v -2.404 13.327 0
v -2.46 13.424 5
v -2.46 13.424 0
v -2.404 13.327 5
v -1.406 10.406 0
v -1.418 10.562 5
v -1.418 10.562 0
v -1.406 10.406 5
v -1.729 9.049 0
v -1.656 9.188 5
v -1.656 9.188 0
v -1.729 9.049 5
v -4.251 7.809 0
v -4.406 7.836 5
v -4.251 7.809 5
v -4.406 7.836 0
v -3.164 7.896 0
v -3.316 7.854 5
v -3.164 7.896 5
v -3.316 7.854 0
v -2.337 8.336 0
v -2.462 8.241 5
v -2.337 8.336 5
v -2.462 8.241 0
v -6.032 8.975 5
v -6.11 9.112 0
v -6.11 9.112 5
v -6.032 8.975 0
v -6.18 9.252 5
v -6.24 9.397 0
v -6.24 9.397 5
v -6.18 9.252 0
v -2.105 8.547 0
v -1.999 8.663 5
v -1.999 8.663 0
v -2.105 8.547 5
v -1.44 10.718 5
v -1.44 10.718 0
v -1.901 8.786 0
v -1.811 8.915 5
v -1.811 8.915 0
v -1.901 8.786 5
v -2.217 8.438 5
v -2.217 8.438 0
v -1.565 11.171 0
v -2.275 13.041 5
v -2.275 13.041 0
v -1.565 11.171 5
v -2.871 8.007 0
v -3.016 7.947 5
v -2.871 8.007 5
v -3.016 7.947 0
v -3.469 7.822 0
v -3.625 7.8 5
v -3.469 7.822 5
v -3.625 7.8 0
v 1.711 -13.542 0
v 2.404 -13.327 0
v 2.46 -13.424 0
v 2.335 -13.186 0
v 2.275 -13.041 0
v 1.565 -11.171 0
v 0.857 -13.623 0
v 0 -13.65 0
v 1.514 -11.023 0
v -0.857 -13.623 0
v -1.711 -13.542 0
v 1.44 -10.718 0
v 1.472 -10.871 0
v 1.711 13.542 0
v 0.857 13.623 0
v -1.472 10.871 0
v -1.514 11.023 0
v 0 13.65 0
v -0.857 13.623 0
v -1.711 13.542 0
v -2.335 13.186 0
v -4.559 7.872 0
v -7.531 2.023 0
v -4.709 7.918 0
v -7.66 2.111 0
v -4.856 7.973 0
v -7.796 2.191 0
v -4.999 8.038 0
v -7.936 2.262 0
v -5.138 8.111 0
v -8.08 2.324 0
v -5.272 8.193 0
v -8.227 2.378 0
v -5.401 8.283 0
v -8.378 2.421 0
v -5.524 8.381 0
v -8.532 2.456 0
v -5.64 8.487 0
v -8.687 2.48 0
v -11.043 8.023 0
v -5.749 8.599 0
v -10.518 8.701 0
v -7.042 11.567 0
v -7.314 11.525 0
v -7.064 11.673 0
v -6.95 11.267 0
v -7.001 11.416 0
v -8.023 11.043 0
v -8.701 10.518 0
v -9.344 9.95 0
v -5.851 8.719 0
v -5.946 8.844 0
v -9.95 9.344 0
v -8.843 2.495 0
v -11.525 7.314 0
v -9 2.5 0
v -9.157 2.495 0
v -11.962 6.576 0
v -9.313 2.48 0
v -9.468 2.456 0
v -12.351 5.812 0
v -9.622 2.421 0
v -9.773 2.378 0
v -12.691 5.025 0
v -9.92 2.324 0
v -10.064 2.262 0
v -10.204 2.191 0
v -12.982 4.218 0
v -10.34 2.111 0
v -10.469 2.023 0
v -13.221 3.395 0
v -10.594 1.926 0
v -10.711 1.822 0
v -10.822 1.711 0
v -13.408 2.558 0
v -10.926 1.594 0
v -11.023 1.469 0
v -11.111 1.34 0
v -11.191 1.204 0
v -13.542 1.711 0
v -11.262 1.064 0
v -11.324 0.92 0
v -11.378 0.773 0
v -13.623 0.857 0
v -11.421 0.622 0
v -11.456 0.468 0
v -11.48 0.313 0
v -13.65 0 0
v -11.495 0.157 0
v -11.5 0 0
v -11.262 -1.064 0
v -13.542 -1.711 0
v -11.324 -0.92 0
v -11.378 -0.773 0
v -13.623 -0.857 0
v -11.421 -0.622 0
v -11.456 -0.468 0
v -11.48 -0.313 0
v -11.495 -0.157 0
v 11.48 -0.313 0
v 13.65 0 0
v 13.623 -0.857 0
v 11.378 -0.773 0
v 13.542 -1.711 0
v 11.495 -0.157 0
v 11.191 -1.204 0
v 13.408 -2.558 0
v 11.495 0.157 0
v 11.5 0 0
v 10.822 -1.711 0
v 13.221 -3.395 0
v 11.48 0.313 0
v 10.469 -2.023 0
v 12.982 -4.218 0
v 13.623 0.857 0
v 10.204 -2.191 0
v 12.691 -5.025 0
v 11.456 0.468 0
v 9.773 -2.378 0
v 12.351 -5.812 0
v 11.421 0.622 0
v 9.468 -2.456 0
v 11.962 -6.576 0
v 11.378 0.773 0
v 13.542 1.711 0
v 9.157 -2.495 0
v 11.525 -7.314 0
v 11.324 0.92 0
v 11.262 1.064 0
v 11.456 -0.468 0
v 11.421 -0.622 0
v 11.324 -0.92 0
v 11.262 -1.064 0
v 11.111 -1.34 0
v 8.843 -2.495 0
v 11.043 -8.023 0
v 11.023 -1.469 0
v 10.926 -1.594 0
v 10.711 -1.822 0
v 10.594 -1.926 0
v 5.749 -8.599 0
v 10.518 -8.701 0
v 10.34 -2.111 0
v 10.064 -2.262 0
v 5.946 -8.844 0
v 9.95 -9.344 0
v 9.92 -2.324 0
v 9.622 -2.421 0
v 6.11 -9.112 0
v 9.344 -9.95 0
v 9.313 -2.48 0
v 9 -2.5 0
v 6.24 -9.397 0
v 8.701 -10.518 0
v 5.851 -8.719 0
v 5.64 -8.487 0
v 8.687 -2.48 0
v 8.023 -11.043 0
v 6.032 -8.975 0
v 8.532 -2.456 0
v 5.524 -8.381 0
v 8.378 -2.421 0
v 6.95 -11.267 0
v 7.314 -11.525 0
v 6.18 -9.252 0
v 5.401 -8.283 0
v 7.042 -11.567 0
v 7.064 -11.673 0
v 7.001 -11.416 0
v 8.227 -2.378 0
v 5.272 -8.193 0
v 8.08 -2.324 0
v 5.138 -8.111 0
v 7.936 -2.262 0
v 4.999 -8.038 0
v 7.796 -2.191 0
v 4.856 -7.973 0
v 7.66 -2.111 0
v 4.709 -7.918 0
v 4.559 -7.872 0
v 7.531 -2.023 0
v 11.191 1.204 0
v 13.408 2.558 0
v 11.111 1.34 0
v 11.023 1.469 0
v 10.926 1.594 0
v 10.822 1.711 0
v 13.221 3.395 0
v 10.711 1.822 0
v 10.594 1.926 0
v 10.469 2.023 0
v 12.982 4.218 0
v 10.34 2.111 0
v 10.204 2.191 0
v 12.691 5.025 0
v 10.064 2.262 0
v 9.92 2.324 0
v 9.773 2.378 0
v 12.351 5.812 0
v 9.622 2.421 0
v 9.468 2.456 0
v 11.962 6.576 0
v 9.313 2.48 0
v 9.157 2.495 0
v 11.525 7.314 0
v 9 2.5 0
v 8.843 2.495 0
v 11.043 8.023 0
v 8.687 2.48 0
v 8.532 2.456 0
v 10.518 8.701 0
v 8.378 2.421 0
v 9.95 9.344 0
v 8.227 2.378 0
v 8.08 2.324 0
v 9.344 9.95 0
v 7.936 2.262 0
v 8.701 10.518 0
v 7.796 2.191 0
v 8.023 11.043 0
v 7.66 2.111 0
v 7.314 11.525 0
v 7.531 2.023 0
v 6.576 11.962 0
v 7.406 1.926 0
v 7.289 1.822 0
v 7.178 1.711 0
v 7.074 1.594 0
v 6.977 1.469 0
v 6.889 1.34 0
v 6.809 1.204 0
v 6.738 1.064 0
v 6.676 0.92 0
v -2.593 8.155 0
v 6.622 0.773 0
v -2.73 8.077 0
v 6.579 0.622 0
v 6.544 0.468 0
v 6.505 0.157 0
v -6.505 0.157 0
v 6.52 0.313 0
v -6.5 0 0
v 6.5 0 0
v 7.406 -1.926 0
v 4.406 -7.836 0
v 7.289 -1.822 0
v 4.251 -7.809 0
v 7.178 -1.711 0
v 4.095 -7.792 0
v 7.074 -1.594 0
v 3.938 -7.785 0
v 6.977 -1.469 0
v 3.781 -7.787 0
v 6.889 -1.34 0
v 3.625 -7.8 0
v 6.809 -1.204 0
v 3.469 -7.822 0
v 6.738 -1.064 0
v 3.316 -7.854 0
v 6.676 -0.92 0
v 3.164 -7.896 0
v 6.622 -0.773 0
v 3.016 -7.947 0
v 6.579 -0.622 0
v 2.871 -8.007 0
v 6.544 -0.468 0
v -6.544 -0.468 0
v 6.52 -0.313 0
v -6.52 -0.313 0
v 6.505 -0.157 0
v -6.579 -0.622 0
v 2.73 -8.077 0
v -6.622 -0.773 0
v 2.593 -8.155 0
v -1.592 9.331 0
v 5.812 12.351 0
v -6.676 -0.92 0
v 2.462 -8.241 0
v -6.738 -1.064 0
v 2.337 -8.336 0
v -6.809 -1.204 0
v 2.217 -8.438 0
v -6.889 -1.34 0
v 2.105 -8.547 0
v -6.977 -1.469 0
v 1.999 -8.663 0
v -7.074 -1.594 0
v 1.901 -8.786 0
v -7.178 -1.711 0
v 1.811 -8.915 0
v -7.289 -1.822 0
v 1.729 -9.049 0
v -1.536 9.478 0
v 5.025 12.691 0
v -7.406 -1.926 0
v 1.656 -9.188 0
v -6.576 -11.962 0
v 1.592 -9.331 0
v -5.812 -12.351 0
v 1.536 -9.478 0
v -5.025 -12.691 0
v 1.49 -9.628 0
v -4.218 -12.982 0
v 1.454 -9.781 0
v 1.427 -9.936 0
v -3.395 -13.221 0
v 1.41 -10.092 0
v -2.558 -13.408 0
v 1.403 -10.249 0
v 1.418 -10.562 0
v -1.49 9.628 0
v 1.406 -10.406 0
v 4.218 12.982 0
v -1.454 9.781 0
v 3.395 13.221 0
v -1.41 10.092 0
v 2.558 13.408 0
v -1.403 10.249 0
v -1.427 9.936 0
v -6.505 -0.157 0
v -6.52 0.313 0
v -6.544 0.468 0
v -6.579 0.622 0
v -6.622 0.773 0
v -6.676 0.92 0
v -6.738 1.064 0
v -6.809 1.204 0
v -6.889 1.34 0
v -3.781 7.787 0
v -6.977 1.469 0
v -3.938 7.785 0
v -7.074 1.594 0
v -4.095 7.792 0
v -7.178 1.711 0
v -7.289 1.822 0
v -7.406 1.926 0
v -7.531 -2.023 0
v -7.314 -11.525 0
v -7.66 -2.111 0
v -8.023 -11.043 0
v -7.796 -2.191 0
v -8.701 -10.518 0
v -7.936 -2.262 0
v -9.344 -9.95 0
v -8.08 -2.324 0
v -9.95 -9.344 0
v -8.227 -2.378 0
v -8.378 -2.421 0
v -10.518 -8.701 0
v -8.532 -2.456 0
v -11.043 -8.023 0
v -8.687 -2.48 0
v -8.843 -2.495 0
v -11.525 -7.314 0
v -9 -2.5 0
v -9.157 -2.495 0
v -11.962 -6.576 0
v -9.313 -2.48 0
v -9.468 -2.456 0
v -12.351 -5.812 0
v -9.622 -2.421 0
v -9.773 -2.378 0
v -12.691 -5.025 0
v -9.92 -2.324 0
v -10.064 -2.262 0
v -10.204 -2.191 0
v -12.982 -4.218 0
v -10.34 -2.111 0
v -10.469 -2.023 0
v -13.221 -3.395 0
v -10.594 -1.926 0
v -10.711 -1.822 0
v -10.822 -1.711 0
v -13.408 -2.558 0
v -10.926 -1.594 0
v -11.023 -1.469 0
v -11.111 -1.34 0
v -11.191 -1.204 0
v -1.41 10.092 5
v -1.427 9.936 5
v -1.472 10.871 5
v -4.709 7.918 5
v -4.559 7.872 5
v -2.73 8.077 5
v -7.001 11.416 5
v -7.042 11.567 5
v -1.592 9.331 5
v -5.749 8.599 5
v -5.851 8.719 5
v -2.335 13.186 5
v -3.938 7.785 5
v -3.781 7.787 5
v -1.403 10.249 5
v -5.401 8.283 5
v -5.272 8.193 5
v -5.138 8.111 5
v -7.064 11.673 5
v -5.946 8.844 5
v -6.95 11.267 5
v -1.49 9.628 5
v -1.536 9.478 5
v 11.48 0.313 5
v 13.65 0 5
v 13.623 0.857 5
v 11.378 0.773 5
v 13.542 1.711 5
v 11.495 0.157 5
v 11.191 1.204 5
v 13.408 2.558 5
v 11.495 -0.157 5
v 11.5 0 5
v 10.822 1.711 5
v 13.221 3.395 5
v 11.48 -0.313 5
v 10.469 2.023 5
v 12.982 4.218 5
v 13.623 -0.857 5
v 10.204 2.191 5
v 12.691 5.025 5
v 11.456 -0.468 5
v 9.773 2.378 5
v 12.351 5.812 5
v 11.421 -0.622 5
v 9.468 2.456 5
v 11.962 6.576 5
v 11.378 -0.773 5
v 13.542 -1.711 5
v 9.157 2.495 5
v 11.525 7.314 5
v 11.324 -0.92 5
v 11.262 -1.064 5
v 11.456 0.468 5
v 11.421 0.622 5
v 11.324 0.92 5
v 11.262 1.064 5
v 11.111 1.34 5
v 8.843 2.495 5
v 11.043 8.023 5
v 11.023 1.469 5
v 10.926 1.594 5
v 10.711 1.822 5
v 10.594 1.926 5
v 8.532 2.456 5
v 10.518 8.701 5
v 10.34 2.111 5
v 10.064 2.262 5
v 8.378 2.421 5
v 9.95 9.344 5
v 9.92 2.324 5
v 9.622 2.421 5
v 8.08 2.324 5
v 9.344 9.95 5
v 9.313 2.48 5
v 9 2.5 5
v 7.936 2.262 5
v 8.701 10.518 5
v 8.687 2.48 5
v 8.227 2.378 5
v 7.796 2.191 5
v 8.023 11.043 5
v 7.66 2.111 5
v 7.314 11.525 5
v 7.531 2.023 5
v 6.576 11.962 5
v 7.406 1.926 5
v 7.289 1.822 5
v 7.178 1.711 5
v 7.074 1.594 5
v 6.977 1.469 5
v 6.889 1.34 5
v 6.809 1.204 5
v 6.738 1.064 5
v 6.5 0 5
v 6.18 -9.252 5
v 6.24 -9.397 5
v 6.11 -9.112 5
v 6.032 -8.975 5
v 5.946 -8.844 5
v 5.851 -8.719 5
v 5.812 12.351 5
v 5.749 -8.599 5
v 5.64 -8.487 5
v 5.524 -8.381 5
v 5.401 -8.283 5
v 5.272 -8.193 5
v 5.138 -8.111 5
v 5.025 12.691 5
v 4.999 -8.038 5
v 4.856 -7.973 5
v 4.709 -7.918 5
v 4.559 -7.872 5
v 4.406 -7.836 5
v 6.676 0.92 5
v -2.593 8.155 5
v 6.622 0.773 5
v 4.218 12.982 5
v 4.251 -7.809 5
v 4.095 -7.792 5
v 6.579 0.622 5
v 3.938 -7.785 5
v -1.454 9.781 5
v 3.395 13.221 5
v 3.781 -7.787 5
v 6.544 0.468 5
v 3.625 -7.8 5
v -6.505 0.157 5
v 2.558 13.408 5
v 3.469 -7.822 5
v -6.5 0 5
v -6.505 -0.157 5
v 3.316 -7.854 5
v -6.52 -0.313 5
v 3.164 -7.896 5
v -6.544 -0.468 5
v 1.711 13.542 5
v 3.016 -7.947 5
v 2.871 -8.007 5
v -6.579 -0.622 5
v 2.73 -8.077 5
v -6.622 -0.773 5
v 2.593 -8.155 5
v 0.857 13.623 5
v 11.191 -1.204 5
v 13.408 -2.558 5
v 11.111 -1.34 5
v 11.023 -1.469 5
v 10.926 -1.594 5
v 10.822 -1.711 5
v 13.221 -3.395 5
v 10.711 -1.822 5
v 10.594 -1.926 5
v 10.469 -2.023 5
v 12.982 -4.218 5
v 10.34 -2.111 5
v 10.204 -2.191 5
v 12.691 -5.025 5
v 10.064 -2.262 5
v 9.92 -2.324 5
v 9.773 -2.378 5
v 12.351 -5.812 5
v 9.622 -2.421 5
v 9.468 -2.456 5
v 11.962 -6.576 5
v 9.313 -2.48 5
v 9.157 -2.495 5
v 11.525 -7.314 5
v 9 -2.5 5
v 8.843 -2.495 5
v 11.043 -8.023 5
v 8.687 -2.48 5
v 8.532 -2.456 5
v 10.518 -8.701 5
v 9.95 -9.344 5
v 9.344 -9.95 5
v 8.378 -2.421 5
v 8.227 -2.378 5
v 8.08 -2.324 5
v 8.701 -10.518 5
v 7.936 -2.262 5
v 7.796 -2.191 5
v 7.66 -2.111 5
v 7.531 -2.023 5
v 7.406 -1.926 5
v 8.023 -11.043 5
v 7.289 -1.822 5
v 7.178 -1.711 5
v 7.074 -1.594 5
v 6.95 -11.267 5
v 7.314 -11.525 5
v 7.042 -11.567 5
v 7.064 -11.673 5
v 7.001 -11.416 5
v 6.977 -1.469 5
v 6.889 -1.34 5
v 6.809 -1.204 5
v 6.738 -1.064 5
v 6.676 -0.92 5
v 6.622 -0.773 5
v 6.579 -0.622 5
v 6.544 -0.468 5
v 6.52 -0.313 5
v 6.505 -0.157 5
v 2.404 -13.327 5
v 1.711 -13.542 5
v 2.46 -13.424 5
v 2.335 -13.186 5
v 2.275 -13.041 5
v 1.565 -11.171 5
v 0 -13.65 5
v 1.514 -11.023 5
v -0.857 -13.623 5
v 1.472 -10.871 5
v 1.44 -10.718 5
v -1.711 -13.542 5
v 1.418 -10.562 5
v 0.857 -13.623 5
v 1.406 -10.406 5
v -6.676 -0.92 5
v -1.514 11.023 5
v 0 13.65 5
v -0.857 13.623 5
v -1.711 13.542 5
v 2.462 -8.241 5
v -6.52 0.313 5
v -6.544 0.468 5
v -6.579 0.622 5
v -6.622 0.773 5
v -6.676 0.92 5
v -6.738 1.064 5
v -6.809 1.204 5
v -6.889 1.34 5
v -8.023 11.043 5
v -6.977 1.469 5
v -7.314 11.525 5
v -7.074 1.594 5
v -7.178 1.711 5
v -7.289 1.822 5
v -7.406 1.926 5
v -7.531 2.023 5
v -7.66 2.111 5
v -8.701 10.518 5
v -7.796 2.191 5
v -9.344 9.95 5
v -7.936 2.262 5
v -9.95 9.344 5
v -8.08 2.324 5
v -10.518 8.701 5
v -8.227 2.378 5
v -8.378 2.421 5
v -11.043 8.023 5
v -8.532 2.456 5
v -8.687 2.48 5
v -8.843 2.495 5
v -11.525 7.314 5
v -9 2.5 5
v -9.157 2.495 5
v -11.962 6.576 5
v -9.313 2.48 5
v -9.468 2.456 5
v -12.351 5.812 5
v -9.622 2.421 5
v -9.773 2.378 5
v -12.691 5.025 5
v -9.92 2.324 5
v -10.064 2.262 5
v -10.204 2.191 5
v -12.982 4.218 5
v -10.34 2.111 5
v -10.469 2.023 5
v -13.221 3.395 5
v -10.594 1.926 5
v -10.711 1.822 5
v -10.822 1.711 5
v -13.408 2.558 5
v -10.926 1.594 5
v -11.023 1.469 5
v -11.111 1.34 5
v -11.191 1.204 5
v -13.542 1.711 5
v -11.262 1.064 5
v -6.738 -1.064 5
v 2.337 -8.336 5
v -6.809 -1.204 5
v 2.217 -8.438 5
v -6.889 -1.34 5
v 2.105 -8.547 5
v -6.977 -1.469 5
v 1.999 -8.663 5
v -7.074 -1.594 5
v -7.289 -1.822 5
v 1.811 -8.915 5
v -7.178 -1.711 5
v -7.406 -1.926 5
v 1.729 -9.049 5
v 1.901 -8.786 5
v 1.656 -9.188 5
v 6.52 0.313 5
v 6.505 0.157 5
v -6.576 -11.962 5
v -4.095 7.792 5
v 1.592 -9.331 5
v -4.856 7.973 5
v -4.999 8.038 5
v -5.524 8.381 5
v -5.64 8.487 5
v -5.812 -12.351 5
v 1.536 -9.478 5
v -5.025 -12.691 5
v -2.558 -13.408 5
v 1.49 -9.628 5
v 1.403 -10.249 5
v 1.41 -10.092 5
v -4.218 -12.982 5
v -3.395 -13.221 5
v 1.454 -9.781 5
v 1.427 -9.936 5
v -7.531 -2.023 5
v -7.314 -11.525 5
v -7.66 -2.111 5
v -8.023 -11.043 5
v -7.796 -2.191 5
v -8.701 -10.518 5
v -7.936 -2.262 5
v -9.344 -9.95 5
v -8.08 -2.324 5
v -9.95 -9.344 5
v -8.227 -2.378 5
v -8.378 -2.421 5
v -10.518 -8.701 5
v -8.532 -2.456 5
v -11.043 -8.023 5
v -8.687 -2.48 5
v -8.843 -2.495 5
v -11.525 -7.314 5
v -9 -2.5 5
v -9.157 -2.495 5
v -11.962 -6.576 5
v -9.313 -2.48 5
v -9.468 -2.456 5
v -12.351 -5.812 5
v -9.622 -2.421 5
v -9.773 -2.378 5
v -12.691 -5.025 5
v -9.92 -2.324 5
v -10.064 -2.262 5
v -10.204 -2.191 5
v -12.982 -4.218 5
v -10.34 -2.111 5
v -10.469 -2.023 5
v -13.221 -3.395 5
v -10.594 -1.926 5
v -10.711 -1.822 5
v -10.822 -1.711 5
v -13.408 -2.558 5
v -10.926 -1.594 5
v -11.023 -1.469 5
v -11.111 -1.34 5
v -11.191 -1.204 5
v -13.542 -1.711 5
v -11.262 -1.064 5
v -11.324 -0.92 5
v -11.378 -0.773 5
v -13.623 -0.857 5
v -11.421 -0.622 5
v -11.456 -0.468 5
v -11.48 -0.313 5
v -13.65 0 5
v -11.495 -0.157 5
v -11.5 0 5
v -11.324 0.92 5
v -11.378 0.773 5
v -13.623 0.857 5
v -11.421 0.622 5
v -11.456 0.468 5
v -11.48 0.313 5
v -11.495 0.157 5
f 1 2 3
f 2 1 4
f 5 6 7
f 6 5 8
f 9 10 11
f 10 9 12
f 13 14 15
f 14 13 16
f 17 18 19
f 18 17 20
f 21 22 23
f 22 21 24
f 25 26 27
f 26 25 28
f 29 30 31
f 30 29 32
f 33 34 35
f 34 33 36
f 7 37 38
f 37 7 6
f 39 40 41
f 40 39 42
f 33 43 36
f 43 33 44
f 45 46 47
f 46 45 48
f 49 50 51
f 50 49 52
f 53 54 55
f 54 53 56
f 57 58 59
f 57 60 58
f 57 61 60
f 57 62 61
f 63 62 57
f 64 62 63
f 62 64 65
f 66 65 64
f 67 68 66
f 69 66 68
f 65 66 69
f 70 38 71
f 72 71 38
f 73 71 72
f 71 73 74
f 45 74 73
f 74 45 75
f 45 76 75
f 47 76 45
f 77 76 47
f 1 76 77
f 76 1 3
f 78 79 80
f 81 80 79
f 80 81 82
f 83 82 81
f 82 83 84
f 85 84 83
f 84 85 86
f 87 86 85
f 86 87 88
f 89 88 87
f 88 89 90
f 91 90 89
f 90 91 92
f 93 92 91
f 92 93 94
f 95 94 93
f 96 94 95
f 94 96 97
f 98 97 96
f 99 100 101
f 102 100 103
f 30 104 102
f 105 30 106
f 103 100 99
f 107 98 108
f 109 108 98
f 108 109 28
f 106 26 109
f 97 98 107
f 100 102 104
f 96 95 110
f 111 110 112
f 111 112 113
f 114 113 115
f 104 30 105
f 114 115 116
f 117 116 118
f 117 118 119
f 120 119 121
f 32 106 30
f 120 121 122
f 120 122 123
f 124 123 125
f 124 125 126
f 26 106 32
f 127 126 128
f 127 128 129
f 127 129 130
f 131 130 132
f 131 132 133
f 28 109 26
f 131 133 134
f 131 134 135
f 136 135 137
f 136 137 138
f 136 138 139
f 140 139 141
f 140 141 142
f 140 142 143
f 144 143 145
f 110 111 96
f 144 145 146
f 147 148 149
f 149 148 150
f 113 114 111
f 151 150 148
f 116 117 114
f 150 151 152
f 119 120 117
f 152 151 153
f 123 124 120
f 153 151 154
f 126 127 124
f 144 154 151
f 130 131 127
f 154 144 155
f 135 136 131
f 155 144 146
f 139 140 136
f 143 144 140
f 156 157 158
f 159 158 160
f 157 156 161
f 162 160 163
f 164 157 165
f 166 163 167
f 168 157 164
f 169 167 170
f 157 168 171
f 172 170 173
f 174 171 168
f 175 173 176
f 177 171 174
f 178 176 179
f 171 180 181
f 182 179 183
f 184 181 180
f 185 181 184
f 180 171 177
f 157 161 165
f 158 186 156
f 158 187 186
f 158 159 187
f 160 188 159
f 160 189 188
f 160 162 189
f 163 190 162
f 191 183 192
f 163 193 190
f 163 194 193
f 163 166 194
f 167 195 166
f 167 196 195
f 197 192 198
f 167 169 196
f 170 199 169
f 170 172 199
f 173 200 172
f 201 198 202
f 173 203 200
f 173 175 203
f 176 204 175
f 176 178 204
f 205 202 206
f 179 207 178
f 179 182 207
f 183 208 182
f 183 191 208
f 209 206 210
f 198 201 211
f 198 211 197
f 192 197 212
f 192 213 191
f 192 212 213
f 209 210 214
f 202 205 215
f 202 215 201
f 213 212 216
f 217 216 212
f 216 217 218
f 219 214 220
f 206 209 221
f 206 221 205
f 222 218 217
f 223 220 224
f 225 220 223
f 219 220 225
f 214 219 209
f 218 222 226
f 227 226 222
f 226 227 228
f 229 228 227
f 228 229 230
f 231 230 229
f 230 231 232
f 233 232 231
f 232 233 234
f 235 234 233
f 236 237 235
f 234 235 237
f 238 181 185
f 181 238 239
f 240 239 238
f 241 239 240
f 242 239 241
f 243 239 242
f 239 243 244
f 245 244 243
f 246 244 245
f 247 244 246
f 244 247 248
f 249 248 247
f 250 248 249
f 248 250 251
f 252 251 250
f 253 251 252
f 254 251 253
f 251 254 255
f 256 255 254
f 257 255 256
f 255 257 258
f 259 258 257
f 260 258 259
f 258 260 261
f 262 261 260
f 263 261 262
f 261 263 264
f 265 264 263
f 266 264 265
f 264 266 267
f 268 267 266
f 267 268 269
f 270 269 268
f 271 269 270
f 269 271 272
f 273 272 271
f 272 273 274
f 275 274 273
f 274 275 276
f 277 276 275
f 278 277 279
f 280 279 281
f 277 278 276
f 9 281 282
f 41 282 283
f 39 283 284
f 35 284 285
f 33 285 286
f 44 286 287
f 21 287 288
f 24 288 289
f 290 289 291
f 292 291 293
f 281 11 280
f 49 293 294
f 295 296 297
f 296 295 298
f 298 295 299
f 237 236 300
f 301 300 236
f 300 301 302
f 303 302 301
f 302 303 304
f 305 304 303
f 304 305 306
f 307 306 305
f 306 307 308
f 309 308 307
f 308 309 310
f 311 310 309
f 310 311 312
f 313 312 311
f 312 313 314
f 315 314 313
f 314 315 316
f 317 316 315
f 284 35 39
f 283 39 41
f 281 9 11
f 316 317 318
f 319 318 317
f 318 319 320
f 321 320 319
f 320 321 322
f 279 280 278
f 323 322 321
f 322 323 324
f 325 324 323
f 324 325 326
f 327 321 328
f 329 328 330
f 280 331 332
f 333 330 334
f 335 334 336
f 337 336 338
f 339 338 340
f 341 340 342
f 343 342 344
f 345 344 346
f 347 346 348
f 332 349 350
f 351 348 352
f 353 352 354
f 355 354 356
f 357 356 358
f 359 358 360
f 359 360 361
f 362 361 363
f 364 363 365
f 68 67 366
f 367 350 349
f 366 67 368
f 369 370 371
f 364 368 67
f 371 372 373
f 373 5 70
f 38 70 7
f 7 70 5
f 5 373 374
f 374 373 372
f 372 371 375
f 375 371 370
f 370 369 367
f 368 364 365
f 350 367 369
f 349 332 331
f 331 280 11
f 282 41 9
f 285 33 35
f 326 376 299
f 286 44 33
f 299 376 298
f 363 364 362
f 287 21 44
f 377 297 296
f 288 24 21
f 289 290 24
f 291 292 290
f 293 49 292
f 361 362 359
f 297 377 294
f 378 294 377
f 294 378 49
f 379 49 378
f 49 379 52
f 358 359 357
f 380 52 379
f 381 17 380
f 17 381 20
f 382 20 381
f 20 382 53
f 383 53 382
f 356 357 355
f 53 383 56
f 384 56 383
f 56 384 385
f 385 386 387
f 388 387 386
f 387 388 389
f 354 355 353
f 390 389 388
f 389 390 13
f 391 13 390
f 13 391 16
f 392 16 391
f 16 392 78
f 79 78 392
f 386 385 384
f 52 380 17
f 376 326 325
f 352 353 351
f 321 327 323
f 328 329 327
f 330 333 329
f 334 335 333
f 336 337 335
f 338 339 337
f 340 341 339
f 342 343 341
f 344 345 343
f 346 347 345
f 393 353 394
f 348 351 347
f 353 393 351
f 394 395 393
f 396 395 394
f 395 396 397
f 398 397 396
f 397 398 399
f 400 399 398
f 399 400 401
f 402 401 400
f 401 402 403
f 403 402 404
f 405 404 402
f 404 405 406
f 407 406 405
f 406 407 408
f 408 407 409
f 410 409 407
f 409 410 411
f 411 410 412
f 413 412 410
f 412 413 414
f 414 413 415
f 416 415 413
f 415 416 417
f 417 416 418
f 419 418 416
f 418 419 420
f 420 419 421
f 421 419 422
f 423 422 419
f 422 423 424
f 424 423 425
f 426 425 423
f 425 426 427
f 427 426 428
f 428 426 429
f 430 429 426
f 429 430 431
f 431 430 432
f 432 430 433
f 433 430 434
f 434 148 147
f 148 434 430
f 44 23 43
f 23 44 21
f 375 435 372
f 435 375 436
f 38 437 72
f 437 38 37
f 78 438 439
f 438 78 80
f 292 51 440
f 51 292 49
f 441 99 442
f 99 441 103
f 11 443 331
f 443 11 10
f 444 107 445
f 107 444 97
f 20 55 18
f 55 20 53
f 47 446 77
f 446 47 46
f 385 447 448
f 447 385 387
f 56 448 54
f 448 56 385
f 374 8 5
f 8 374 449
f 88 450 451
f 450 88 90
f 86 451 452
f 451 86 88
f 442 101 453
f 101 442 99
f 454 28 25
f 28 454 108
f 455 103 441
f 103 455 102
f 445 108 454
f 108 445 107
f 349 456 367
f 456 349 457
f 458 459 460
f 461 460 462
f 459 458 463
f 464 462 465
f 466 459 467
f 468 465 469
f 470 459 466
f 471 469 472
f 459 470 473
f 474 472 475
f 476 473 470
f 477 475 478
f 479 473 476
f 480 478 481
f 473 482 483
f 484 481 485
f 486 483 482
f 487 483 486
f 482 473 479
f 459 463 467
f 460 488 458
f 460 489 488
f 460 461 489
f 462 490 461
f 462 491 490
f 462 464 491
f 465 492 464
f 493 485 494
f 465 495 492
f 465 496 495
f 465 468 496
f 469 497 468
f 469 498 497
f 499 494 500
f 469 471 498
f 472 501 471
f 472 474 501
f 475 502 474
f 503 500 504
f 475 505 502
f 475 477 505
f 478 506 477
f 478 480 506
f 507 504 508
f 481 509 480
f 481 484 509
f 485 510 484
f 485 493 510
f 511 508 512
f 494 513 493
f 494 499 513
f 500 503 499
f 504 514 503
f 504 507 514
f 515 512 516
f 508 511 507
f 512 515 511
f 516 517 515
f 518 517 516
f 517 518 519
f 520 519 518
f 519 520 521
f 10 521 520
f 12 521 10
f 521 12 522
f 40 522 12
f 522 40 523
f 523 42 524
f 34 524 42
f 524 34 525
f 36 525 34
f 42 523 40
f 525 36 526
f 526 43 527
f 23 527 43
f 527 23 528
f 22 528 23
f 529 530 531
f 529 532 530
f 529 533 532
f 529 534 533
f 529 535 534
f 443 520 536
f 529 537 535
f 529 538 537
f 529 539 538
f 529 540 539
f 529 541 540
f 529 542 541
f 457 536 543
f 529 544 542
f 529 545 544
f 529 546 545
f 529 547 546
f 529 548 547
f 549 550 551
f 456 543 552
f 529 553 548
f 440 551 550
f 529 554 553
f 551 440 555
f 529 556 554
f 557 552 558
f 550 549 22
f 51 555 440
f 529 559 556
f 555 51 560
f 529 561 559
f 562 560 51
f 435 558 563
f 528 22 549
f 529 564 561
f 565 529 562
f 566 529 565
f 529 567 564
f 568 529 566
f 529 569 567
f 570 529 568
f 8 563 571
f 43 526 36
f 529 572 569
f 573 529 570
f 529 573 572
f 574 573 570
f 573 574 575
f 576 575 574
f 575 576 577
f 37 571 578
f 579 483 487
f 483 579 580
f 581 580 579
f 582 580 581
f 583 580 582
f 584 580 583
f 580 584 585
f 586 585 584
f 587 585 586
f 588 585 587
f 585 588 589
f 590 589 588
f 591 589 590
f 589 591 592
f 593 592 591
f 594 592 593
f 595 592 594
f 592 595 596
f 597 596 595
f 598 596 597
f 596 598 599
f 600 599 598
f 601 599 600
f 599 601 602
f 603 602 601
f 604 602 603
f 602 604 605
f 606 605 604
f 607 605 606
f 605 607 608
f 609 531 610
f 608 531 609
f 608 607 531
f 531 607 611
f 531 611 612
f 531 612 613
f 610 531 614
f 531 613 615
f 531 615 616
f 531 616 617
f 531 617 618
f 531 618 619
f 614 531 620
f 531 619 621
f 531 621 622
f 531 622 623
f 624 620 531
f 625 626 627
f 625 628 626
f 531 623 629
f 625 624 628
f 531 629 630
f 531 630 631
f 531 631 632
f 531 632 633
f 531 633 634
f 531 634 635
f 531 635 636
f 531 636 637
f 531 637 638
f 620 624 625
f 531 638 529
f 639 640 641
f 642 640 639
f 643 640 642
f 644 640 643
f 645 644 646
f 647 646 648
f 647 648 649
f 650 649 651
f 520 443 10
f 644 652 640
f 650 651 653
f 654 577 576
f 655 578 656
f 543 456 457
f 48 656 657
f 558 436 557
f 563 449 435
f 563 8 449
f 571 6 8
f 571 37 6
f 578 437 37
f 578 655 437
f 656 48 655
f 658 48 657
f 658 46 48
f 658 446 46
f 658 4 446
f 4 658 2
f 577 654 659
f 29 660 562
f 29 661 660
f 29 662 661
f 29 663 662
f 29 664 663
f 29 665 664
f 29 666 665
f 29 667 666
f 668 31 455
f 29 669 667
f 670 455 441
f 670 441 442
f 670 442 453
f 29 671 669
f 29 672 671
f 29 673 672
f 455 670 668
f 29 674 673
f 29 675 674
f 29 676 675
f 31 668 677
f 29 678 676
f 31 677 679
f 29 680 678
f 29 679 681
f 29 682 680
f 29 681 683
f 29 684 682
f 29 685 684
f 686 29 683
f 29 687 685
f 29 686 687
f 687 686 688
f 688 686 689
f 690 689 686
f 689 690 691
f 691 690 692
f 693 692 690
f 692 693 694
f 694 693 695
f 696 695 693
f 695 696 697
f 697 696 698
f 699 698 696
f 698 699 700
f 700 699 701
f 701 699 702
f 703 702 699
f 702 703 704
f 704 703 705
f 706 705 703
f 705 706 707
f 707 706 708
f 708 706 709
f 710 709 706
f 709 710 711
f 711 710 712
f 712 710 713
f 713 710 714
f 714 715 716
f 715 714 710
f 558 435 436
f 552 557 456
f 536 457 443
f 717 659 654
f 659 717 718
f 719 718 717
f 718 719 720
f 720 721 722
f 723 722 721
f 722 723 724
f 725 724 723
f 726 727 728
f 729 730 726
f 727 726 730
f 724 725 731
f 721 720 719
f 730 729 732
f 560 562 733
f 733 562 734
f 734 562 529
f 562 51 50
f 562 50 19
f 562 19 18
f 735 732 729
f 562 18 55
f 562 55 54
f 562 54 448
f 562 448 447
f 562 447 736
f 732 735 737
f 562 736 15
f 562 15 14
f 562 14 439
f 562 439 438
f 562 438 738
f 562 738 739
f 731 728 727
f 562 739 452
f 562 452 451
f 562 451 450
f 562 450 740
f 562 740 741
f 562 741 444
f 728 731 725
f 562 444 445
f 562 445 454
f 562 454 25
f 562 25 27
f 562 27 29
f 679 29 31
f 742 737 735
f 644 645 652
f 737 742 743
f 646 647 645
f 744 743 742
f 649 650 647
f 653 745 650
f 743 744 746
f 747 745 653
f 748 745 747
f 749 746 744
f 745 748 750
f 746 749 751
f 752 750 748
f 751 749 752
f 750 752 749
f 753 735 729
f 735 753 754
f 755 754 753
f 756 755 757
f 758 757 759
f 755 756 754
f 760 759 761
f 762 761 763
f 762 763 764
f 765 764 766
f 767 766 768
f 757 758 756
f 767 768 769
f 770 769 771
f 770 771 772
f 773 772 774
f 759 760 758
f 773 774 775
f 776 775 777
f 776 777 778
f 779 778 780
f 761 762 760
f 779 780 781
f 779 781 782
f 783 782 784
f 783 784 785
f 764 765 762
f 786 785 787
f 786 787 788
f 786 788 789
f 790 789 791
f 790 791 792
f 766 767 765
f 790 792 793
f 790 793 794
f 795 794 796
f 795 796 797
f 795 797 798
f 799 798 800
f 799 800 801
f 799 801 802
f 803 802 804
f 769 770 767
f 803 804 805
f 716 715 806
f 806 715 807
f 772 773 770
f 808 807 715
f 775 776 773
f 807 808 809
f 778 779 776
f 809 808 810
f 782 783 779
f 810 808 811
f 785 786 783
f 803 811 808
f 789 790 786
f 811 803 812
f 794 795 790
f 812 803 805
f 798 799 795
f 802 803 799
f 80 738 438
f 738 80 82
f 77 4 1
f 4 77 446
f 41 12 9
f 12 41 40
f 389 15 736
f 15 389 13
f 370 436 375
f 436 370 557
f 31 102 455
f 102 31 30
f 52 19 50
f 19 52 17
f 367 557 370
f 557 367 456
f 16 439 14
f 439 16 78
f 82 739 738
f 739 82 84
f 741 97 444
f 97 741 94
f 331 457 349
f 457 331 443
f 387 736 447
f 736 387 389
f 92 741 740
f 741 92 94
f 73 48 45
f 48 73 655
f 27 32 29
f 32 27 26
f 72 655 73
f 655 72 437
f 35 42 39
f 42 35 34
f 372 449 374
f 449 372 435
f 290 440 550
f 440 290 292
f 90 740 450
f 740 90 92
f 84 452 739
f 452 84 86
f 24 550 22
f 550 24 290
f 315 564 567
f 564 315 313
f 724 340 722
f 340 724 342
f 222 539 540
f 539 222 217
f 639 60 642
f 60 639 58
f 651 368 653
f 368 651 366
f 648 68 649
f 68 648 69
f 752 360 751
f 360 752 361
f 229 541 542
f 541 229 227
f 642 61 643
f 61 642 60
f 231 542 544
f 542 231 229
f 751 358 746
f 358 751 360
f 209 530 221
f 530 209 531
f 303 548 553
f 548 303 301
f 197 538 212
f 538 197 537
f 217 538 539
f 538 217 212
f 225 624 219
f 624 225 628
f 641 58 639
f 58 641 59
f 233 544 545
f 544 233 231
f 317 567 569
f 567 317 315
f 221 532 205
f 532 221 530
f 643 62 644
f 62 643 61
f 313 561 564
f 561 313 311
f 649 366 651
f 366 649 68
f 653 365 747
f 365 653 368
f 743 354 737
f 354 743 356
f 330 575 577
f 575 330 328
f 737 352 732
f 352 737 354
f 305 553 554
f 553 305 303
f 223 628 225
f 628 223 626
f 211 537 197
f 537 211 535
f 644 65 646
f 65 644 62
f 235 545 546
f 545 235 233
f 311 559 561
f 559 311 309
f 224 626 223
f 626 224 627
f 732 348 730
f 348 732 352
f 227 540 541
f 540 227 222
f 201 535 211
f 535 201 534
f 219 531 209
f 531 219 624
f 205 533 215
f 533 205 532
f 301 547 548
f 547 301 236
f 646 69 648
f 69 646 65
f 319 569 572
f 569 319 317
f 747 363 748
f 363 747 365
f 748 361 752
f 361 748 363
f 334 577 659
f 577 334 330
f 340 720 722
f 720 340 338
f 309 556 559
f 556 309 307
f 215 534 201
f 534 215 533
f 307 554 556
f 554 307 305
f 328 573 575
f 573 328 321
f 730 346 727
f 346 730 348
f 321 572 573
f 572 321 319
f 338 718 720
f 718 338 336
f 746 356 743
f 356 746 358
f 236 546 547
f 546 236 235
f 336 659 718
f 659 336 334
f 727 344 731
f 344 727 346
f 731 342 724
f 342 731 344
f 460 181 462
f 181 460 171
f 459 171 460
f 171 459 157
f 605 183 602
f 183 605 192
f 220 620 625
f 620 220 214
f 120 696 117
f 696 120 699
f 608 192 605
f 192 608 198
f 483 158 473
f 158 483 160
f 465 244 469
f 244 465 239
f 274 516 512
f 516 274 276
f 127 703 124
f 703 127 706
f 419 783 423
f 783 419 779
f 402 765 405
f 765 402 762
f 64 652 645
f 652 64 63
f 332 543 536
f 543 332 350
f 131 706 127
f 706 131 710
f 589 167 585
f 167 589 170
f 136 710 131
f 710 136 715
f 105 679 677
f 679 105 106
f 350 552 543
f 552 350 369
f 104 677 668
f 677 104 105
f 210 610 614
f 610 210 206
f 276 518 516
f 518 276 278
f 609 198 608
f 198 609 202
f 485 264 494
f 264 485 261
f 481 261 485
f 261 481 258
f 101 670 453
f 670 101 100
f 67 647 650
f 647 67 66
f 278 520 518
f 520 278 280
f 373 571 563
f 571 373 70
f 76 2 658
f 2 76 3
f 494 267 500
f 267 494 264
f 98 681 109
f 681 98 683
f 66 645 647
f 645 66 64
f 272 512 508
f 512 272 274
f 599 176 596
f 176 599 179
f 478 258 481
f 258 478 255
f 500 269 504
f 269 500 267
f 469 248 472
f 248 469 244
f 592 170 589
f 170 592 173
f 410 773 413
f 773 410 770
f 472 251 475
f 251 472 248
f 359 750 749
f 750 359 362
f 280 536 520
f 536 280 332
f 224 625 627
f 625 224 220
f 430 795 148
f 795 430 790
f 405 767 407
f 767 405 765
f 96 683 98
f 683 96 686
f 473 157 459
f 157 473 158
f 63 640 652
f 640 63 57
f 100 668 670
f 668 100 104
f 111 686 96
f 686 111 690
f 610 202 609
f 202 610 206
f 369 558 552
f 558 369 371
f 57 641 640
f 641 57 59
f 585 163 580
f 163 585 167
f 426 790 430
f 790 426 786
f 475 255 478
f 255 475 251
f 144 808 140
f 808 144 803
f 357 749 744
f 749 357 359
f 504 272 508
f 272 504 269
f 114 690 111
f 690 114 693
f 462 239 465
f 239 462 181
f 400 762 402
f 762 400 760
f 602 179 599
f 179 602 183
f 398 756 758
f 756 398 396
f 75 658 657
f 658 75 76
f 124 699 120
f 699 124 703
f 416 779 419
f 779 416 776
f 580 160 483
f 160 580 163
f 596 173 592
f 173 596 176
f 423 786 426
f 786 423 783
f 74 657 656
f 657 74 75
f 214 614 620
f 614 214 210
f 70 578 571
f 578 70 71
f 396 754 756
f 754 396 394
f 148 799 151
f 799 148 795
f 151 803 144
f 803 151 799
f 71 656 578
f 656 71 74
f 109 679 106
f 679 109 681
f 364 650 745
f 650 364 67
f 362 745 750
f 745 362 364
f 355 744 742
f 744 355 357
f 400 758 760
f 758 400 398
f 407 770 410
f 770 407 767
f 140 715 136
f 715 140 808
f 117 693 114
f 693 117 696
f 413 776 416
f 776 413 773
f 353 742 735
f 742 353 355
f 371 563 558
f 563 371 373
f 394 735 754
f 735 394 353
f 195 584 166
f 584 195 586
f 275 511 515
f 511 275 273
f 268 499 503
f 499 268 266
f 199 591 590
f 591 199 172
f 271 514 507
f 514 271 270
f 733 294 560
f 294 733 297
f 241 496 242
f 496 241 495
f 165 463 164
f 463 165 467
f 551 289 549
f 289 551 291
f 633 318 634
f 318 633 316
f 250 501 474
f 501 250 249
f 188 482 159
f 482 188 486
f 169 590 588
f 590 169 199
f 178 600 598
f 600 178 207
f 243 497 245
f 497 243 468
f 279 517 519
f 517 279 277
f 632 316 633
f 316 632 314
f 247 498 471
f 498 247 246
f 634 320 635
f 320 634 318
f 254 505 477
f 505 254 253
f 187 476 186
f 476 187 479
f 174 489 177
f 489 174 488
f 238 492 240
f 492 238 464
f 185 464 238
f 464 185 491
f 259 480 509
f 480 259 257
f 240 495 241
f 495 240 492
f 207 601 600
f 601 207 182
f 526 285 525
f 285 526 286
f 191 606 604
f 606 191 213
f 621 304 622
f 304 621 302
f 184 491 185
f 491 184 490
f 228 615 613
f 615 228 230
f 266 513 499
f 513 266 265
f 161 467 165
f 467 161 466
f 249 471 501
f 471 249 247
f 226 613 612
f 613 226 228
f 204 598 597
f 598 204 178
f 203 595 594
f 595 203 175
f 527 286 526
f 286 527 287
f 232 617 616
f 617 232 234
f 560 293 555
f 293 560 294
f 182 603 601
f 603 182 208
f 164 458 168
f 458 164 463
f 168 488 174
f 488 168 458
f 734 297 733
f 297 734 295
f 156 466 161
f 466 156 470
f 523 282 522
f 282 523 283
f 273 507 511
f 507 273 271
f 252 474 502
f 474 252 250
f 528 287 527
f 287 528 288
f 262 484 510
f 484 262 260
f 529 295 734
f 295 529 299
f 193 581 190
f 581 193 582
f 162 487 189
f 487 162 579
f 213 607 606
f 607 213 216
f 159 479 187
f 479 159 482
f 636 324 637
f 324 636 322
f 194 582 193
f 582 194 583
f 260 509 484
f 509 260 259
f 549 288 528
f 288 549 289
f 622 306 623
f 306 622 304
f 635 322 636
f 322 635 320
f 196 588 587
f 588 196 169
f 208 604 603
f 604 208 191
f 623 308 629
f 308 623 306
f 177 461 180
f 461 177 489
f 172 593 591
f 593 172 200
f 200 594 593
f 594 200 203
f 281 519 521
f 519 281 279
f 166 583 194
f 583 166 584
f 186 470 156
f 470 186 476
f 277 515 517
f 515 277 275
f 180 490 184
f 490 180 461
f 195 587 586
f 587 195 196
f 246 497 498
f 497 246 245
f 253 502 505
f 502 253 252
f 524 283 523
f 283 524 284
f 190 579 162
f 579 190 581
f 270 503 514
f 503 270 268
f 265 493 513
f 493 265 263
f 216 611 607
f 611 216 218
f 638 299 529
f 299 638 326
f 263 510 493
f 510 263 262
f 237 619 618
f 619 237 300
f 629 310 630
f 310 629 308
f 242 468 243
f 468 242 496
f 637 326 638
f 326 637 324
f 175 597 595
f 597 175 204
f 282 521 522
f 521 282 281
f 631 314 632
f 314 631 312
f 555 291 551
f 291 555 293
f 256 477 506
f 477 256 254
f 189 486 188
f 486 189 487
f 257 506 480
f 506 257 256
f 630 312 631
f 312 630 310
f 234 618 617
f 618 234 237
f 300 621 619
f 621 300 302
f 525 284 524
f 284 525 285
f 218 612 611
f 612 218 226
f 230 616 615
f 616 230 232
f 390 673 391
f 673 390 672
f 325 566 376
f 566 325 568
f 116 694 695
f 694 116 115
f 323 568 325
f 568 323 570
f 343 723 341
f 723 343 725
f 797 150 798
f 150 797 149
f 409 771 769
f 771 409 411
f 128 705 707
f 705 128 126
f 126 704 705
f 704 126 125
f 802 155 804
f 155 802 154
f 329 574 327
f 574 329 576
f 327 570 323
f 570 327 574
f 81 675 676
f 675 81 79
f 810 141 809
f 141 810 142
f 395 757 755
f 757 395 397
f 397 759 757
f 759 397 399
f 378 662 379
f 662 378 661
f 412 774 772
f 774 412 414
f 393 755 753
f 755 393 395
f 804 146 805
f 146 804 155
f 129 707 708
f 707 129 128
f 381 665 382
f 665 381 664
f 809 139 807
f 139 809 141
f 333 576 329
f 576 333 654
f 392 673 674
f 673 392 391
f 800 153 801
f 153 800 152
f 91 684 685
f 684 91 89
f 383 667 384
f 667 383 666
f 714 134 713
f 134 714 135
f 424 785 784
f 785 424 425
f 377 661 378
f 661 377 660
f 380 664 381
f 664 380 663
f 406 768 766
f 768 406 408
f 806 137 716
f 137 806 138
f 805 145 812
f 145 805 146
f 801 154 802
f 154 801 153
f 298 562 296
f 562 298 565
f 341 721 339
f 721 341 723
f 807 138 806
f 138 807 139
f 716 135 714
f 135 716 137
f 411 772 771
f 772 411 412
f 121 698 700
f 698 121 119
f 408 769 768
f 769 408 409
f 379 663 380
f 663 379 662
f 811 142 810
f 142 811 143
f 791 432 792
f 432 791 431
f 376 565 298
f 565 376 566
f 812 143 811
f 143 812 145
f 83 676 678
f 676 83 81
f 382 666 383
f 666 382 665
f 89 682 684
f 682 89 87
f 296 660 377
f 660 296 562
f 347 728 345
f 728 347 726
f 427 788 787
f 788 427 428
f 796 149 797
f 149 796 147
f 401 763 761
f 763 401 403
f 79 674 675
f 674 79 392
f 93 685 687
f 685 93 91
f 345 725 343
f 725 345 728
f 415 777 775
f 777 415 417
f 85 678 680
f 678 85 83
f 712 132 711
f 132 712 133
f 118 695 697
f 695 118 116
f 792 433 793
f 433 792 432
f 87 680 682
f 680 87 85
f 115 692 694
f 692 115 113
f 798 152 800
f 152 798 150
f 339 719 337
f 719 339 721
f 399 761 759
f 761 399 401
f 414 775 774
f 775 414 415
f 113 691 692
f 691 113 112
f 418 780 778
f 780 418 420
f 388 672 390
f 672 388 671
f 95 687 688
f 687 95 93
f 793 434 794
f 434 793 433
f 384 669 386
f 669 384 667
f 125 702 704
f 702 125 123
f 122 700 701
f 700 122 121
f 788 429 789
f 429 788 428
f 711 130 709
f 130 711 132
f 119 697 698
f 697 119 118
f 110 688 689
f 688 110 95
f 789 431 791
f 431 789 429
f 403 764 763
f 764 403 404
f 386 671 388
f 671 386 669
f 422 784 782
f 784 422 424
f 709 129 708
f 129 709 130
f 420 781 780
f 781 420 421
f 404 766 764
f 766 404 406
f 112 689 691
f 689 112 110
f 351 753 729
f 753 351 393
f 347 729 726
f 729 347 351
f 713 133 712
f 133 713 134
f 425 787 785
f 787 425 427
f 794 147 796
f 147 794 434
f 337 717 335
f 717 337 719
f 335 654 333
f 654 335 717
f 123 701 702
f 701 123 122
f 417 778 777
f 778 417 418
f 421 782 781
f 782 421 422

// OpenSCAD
include <../references.scad>

Tube_length = 5; //15
Tube_diameter = 27.3;
Hole_diameter = 5;


//Big_outter_diameter = 51.7;
//Big_inner_diameter = 51.7;
//Little_outter_diameter = 41.78;
//Little_inner_diameter = 28.4;
//Side_length = 20.4;
//Hole_for_screw_diameter = 6;
//Holding_stem_diameter = 10;
//Holding_plate_height = Holding_stem_diameter + 4;



module support(){
    rotate([0,0,0]){
            color("green")cylinder(h=Tube_length, d=Tube_diameter , $fn=100);
    }
}

module holes(position_x,position_y,position_z,percentage_of_length){
    translate([position_x,position_y,position_z]){
        color("blue")cylinder(h=Tube_length*(percentage_of_length/100), d=Hole_diameter , $fn=100);
    }
}





difference(){
    support();
    holes(9,0,0,100);
    holes(-9,0,0,100);
    rotate([0,0,110.78]){
        color("red"){
            hull(){
                holes(11,0,0,100);
                holes(13,0,0,100);
                }
            hull(){
                holes(-11,0,0,100);
                holes(-13,0,0,100);
                }
        }
    }
}

//was :                 holes(11,0,Tube_length-(Tube_length*(33/100)),33);
